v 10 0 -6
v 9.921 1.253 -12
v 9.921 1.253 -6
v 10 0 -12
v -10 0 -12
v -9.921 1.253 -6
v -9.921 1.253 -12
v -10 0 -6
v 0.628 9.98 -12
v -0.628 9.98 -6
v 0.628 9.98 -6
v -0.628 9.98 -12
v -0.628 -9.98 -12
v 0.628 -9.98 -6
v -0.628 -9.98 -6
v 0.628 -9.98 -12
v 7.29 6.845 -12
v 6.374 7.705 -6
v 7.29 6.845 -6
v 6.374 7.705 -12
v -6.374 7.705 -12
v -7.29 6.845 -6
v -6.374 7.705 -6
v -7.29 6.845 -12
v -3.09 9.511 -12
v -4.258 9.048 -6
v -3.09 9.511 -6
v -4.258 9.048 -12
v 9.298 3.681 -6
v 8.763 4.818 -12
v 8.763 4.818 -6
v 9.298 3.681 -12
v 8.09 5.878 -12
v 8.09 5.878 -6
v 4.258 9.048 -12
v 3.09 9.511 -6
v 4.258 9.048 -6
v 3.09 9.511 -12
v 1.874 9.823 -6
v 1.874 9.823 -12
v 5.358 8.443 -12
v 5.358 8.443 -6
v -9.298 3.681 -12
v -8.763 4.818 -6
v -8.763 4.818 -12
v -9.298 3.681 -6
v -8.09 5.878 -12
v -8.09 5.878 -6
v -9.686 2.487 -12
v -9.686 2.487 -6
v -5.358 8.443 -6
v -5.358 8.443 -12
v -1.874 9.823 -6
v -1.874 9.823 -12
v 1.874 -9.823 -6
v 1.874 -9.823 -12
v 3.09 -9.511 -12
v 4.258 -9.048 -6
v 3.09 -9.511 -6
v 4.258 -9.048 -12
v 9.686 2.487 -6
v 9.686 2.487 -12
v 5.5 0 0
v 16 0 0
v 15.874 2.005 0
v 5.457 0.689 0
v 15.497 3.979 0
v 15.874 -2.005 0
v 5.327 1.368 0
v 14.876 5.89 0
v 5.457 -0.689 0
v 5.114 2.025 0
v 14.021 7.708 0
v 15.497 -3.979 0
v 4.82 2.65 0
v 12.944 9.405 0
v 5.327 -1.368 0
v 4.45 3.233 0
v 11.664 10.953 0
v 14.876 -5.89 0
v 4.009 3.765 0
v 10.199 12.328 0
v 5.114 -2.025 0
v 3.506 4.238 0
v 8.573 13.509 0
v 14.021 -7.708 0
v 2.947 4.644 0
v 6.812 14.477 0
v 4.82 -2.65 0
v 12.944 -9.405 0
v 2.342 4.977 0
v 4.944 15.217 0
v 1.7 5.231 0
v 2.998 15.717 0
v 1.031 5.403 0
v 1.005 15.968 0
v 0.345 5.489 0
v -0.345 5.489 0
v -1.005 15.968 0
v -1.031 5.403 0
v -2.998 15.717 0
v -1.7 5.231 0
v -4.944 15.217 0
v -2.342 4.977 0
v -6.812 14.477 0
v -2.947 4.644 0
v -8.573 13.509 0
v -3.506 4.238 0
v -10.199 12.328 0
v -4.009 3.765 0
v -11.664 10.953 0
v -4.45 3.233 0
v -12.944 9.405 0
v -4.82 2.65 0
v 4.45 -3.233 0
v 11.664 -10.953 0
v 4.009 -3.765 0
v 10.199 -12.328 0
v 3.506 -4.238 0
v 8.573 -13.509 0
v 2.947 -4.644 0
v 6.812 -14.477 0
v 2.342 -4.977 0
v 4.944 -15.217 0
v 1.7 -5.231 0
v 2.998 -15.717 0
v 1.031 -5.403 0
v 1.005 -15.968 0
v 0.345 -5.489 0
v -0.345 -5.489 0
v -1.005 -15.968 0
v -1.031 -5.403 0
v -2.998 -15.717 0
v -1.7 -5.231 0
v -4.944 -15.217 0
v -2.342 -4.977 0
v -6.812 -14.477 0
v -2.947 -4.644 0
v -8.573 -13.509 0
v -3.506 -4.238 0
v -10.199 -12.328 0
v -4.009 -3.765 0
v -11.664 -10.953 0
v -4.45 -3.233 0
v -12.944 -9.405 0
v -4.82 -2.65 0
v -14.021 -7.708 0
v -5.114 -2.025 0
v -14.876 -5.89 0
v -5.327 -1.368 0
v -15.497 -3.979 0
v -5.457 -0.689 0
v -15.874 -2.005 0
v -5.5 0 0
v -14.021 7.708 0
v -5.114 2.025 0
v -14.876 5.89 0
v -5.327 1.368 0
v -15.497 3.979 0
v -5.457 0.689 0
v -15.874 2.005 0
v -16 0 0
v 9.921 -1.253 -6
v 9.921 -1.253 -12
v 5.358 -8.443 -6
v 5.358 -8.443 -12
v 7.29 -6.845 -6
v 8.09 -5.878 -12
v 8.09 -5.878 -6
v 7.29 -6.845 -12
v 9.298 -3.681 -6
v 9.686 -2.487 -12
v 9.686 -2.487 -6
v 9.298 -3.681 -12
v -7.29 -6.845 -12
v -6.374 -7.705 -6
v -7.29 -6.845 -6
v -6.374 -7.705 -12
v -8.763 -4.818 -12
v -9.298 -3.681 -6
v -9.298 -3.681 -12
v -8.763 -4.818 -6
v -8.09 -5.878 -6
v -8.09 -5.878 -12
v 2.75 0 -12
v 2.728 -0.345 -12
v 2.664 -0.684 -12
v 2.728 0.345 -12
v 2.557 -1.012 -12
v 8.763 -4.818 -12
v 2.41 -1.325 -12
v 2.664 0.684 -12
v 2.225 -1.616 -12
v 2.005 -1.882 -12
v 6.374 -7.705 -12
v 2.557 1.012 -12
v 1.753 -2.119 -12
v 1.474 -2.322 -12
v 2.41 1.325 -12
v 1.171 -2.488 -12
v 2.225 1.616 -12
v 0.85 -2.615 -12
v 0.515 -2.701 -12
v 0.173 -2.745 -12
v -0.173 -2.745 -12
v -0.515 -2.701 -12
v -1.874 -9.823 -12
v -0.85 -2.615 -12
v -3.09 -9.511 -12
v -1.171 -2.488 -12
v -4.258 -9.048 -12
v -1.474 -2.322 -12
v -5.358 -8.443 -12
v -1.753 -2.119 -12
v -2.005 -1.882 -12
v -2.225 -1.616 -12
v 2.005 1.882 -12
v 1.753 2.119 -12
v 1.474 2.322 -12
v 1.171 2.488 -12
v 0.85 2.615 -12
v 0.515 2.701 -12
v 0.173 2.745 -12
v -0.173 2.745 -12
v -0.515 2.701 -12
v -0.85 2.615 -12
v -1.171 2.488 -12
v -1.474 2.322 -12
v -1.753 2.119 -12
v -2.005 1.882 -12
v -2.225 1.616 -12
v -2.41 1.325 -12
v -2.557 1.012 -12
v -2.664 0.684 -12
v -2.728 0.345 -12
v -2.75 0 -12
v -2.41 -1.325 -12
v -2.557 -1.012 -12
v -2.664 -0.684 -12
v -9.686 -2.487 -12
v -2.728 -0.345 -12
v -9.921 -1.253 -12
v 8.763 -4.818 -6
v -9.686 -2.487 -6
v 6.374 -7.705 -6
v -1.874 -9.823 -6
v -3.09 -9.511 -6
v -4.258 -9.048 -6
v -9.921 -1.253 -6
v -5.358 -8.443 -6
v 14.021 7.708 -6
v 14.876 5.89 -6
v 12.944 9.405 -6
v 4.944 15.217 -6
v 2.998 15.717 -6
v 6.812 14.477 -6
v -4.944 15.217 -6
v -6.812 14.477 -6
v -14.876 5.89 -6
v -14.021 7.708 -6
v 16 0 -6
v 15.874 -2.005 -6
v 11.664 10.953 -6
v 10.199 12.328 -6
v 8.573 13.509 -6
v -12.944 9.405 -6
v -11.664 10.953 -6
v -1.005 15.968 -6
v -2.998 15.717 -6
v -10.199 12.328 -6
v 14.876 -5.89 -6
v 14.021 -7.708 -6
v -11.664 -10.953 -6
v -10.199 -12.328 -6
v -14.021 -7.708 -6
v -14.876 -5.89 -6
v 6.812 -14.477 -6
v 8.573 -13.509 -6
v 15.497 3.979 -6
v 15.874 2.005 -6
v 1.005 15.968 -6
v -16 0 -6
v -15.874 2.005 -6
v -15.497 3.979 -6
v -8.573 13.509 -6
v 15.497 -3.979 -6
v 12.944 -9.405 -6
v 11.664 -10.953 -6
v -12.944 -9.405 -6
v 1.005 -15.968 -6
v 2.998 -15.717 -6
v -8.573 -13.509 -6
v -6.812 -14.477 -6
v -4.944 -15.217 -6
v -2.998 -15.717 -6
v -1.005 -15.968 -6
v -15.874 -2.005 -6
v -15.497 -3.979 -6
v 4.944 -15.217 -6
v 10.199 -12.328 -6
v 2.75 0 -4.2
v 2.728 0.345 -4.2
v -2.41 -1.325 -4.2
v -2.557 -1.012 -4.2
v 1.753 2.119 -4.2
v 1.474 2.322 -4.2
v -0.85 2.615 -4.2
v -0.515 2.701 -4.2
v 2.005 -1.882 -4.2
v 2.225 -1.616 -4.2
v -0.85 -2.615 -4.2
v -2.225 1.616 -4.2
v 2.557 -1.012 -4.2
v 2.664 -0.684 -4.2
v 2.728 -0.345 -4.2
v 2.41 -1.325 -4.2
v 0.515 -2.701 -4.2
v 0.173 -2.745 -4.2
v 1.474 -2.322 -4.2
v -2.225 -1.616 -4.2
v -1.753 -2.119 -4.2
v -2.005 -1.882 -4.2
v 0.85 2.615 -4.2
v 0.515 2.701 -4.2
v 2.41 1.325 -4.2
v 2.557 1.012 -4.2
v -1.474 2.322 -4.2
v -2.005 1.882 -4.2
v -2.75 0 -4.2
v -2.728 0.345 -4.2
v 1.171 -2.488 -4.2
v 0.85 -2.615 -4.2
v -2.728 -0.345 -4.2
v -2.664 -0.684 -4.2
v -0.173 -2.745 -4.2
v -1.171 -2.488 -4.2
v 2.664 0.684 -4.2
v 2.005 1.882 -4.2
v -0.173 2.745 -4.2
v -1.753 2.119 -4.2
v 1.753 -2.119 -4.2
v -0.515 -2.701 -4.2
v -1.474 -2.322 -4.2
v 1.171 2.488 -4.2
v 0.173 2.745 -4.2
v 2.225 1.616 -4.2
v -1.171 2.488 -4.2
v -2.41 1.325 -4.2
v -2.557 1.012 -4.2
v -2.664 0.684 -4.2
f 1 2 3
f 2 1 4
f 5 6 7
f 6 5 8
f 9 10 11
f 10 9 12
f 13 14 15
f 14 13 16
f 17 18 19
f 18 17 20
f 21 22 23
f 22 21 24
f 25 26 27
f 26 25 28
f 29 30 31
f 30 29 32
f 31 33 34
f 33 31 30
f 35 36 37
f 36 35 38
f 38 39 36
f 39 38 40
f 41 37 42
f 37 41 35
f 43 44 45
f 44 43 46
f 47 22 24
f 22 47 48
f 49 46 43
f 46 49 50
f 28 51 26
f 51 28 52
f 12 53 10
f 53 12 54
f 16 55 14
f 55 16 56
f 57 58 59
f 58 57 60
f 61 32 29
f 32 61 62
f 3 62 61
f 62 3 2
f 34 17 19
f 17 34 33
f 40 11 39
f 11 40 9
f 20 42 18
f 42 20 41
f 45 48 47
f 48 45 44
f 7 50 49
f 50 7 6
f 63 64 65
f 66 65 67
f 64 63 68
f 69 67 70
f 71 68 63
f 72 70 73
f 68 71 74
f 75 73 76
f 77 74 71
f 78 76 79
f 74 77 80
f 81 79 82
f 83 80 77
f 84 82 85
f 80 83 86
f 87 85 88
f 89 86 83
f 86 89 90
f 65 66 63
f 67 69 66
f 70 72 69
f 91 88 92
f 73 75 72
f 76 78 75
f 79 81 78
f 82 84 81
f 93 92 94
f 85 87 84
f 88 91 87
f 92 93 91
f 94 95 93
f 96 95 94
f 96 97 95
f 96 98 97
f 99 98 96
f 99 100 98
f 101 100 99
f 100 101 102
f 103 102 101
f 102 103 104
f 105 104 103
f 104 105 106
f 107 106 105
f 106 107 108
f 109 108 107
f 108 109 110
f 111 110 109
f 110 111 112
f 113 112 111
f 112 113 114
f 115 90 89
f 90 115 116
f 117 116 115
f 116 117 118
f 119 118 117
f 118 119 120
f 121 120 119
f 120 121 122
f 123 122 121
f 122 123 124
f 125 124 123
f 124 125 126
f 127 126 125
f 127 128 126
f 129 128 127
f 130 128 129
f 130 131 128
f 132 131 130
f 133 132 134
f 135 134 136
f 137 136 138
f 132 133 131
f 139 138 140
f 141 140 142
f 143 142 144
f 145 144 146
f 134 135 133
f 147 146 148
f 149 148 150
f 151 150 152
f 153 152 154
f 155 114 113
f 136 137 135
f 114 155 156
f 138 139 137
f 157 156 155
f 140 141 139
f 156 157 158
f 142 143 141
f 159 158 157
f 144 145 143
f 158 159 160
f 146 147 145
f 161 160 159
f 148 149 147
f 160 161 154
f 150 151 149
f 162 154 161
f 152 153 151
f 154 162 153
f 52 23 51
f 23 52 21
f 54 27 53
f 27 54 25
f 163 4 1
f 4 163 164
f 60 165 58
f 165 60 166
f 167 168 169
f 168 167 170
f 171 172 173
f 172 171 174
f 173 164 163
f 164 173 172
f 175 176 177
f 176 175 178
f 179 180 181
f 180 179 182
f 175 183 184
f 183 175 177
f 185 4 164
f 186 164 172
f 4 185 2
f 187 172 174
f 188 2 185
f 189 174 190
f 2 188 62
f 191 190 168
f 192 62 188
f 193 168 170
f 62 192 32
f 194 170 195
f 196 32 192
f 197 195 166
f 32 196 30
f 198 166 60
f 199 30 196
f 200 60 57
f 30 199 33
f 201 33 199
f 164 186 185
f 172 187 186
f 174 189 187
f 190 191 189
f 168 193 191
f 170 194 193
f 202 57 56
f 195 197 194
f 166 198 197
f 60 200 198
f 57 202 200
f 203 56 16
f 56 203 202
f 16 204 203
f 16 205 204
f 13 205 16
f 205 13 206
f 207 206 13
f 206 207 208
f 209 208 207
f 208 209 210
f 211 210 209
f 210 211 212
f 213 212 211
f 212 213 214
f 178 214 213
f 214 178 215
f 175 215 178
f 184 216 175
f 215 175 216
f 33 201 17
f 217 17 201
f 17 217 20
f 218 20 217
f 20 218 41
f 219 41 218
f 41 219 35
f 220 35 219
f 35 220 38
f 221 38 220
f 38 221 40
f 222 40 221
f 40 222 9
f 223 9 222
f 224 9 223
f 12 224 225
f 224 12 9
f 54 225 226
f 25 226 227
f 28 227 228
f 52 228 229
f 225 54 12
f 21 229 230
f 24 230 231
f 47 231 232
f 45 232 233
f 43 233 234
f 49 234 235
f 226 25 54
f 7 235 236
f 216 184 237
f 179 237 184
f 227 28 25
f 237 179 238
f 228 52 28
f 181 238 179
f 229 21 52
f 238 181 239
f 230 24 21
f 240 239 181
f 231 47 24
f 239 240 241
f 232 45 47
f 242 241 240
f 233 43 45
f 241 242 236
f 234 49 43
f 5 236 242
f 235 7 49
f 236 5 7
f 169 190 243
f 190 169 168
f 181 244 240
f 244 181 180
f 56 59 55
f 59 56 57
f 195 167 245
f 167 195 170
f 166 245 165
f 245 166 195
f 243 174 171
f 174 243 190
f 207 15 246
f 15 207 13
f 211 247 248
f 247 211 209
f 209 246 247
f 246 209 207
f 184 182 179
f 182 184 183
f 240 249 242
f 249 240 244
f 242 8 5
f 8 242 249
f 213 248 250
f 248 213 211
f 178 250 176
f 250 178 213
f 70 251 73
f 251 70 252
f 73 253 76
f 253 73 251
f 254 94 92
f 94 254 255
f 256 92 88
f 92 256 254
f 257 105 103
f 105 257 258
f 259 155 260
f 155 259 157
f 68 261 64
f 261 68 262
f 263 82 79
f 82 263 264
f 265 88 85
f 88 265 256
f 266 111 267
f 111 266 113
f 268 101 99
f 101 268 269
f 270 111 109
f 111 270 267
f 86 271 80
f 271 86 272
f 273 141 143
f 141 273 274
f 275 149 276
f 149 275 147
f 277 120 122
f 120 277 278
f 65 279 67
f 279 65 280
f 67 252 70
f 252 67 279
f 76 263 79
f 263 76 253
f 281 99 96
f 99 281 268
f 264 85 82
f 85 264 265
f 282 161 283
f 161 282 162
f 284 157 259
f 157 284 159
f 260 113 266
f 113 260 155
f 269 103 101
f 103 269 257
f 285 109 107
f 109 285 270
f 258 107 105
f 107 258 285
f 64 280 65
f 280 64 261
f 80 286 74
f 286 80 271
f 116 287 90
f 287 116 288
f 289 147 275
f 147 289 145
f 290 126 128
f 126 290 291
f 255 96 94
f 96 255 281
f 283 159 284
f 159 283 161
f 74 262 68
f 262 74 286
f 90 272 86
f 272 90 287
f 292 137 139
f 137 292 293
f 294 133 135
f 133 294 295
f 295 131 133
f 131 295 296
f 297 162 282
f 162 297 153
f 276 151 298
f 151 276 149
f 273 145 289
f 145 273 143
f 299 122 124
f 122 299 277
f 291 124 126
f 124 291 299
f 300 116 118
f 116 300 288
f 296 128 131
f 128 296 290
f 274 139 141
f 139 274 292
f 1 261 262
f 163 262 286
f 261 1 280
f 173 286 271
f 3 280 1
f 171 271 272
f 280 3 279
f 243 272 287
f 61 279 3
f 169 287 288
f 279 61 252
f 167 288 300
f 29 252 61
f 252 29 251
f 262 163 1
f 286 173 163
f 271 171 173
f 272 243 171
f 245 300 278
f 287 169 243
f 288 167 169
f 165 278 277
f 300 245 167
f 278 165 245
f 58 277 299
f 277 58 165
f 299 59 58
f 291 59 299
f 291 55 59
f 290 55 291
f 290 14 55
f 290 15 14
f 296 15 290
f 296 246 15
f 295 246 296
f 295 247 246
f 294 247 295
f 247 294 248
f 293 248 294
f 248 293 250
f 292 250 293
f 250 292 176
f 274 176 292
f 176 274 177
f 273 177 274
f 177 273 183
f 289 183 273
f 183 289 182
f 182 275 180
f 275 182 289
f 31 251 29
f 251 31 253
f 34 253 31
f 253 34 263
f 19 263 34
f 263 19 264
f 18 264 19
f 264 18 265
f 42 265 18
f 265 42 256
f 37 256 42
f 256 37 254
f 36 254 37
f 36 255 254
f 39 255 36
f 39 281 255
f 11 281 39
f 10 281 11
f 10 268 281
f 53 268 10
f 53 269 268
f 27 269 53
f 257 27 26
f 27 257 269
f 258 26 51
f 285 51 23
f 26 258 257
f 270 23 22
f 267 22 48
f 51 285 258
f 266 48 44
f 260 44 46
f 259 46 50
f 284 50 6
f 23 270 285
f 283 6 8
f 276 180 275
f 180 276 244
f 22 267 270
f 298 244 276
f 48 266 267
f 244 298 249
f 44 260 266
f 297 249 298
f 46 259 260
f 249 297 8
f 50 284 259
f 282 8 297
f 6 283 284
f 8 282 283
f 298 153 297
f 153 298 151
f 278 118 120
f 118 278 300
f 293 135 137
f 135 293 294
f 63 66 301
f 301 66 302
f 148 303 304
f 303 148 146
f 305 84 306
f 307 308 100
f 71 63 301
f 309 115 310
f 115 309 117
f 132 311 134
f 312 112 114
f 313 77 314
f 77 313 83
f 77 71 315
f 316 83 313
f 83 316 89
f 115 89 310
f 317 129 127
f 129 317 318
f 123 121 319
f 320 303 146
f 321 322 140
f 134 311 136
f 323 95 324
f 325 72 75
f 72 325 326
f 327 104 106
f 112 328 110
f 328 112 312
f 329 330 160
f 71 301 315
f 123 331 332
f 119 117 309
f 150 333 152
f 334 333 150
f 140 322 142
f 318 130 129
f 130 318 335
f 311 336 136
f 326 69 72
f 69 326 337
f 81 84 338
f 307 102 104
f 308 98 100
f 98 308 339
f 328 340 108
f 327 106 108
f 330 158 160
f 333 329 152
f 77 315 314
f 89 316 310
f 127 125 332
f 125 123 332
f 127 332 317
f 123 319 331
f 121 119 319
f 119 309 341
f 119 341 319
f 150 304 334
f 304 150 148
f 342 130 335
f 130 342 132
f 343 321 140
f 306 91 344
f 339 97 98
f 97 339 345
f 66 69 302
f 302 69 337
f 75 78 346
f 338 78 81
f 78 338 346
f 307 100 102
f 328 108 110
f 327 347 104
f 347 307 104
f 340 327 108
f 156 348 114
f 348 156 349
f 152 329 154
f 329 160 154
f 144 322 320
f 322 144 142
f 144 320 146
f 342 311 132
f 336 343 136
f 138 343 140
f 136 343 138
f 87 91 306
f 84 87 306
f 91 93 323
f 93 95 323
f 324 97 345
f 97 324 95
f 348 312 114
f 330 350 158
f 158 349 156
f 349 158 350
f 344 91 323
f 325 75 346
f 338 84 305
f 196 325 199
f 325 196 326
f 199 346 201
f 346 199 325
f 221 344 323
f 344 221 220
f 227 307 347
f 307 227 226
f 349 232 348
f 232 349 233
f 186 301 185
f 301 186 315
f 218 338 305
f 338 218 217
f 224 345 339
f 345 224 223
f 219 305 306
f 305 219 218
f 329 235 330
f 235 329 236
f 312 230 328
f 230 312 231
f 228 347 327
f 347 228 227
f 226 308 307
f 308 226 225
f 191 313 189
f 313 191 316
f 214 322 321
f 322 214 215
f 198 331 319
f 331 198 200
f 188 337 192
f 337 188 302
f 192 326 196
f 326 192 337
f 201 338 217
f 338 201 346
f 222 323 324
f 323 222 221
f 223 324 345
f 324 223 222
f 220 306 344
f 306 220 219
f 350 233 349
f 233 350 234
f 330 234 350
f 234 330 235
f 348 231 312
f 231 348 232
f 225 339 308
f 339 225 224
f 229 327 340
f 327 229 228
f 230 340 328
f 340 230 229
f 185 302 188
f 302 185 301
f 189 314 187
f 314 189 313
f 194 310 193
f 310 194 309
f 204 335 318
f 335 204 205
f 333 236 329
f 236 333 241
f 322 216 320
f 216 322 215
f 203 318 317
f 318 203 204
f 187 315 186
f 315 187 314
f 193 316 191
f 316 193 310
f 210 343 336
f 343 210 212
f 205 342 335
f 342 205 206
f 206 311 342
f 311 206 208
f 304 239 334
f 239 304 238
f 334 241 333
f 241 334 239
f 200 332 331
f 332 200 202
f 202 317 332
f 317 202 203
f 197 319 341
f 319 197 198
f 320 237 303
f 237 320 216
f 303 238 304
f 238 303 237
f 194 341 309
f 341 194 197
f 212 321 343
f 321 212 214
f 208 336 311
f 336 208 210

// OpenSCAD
$fn = 50;


difference() {
	union() {
		translate(v = [0, 0, -12.0000000000]) {
			cylinder(h = 12, r = 10.0000000000);
		}
		translate(v = [0, 0, -6.0000000000]) {
			cylinder(h = 6, r = 16.0000000000);
		}
	}
	union() {
		translate(v = [0, 0, 0]) {
			rotate(a = [0, 0, 0]) {
				difference() {
					union() {
						#translate(v = [0, 0, -12.0000000000]) {
							cylinder(h = 12, r = 2.2500000000);
						}
						#translate(v = [0, 0, -4.2000000000]) {
							cylinder(h = 4.2000000000, r1 = 2.7500000000, r2 = 5.5000000000);
						}
						#translate(v = [0, 0, -12.0000000000]) {
							cylinder(h = 12, r = 2.7500000000);
						}
						#translate(v = [0, 0, -12.0000000000]) {
							cylinder(h = 12, r = 2.2500000000);
						}
					}
					union();
				}
			}
		}
	}
}
